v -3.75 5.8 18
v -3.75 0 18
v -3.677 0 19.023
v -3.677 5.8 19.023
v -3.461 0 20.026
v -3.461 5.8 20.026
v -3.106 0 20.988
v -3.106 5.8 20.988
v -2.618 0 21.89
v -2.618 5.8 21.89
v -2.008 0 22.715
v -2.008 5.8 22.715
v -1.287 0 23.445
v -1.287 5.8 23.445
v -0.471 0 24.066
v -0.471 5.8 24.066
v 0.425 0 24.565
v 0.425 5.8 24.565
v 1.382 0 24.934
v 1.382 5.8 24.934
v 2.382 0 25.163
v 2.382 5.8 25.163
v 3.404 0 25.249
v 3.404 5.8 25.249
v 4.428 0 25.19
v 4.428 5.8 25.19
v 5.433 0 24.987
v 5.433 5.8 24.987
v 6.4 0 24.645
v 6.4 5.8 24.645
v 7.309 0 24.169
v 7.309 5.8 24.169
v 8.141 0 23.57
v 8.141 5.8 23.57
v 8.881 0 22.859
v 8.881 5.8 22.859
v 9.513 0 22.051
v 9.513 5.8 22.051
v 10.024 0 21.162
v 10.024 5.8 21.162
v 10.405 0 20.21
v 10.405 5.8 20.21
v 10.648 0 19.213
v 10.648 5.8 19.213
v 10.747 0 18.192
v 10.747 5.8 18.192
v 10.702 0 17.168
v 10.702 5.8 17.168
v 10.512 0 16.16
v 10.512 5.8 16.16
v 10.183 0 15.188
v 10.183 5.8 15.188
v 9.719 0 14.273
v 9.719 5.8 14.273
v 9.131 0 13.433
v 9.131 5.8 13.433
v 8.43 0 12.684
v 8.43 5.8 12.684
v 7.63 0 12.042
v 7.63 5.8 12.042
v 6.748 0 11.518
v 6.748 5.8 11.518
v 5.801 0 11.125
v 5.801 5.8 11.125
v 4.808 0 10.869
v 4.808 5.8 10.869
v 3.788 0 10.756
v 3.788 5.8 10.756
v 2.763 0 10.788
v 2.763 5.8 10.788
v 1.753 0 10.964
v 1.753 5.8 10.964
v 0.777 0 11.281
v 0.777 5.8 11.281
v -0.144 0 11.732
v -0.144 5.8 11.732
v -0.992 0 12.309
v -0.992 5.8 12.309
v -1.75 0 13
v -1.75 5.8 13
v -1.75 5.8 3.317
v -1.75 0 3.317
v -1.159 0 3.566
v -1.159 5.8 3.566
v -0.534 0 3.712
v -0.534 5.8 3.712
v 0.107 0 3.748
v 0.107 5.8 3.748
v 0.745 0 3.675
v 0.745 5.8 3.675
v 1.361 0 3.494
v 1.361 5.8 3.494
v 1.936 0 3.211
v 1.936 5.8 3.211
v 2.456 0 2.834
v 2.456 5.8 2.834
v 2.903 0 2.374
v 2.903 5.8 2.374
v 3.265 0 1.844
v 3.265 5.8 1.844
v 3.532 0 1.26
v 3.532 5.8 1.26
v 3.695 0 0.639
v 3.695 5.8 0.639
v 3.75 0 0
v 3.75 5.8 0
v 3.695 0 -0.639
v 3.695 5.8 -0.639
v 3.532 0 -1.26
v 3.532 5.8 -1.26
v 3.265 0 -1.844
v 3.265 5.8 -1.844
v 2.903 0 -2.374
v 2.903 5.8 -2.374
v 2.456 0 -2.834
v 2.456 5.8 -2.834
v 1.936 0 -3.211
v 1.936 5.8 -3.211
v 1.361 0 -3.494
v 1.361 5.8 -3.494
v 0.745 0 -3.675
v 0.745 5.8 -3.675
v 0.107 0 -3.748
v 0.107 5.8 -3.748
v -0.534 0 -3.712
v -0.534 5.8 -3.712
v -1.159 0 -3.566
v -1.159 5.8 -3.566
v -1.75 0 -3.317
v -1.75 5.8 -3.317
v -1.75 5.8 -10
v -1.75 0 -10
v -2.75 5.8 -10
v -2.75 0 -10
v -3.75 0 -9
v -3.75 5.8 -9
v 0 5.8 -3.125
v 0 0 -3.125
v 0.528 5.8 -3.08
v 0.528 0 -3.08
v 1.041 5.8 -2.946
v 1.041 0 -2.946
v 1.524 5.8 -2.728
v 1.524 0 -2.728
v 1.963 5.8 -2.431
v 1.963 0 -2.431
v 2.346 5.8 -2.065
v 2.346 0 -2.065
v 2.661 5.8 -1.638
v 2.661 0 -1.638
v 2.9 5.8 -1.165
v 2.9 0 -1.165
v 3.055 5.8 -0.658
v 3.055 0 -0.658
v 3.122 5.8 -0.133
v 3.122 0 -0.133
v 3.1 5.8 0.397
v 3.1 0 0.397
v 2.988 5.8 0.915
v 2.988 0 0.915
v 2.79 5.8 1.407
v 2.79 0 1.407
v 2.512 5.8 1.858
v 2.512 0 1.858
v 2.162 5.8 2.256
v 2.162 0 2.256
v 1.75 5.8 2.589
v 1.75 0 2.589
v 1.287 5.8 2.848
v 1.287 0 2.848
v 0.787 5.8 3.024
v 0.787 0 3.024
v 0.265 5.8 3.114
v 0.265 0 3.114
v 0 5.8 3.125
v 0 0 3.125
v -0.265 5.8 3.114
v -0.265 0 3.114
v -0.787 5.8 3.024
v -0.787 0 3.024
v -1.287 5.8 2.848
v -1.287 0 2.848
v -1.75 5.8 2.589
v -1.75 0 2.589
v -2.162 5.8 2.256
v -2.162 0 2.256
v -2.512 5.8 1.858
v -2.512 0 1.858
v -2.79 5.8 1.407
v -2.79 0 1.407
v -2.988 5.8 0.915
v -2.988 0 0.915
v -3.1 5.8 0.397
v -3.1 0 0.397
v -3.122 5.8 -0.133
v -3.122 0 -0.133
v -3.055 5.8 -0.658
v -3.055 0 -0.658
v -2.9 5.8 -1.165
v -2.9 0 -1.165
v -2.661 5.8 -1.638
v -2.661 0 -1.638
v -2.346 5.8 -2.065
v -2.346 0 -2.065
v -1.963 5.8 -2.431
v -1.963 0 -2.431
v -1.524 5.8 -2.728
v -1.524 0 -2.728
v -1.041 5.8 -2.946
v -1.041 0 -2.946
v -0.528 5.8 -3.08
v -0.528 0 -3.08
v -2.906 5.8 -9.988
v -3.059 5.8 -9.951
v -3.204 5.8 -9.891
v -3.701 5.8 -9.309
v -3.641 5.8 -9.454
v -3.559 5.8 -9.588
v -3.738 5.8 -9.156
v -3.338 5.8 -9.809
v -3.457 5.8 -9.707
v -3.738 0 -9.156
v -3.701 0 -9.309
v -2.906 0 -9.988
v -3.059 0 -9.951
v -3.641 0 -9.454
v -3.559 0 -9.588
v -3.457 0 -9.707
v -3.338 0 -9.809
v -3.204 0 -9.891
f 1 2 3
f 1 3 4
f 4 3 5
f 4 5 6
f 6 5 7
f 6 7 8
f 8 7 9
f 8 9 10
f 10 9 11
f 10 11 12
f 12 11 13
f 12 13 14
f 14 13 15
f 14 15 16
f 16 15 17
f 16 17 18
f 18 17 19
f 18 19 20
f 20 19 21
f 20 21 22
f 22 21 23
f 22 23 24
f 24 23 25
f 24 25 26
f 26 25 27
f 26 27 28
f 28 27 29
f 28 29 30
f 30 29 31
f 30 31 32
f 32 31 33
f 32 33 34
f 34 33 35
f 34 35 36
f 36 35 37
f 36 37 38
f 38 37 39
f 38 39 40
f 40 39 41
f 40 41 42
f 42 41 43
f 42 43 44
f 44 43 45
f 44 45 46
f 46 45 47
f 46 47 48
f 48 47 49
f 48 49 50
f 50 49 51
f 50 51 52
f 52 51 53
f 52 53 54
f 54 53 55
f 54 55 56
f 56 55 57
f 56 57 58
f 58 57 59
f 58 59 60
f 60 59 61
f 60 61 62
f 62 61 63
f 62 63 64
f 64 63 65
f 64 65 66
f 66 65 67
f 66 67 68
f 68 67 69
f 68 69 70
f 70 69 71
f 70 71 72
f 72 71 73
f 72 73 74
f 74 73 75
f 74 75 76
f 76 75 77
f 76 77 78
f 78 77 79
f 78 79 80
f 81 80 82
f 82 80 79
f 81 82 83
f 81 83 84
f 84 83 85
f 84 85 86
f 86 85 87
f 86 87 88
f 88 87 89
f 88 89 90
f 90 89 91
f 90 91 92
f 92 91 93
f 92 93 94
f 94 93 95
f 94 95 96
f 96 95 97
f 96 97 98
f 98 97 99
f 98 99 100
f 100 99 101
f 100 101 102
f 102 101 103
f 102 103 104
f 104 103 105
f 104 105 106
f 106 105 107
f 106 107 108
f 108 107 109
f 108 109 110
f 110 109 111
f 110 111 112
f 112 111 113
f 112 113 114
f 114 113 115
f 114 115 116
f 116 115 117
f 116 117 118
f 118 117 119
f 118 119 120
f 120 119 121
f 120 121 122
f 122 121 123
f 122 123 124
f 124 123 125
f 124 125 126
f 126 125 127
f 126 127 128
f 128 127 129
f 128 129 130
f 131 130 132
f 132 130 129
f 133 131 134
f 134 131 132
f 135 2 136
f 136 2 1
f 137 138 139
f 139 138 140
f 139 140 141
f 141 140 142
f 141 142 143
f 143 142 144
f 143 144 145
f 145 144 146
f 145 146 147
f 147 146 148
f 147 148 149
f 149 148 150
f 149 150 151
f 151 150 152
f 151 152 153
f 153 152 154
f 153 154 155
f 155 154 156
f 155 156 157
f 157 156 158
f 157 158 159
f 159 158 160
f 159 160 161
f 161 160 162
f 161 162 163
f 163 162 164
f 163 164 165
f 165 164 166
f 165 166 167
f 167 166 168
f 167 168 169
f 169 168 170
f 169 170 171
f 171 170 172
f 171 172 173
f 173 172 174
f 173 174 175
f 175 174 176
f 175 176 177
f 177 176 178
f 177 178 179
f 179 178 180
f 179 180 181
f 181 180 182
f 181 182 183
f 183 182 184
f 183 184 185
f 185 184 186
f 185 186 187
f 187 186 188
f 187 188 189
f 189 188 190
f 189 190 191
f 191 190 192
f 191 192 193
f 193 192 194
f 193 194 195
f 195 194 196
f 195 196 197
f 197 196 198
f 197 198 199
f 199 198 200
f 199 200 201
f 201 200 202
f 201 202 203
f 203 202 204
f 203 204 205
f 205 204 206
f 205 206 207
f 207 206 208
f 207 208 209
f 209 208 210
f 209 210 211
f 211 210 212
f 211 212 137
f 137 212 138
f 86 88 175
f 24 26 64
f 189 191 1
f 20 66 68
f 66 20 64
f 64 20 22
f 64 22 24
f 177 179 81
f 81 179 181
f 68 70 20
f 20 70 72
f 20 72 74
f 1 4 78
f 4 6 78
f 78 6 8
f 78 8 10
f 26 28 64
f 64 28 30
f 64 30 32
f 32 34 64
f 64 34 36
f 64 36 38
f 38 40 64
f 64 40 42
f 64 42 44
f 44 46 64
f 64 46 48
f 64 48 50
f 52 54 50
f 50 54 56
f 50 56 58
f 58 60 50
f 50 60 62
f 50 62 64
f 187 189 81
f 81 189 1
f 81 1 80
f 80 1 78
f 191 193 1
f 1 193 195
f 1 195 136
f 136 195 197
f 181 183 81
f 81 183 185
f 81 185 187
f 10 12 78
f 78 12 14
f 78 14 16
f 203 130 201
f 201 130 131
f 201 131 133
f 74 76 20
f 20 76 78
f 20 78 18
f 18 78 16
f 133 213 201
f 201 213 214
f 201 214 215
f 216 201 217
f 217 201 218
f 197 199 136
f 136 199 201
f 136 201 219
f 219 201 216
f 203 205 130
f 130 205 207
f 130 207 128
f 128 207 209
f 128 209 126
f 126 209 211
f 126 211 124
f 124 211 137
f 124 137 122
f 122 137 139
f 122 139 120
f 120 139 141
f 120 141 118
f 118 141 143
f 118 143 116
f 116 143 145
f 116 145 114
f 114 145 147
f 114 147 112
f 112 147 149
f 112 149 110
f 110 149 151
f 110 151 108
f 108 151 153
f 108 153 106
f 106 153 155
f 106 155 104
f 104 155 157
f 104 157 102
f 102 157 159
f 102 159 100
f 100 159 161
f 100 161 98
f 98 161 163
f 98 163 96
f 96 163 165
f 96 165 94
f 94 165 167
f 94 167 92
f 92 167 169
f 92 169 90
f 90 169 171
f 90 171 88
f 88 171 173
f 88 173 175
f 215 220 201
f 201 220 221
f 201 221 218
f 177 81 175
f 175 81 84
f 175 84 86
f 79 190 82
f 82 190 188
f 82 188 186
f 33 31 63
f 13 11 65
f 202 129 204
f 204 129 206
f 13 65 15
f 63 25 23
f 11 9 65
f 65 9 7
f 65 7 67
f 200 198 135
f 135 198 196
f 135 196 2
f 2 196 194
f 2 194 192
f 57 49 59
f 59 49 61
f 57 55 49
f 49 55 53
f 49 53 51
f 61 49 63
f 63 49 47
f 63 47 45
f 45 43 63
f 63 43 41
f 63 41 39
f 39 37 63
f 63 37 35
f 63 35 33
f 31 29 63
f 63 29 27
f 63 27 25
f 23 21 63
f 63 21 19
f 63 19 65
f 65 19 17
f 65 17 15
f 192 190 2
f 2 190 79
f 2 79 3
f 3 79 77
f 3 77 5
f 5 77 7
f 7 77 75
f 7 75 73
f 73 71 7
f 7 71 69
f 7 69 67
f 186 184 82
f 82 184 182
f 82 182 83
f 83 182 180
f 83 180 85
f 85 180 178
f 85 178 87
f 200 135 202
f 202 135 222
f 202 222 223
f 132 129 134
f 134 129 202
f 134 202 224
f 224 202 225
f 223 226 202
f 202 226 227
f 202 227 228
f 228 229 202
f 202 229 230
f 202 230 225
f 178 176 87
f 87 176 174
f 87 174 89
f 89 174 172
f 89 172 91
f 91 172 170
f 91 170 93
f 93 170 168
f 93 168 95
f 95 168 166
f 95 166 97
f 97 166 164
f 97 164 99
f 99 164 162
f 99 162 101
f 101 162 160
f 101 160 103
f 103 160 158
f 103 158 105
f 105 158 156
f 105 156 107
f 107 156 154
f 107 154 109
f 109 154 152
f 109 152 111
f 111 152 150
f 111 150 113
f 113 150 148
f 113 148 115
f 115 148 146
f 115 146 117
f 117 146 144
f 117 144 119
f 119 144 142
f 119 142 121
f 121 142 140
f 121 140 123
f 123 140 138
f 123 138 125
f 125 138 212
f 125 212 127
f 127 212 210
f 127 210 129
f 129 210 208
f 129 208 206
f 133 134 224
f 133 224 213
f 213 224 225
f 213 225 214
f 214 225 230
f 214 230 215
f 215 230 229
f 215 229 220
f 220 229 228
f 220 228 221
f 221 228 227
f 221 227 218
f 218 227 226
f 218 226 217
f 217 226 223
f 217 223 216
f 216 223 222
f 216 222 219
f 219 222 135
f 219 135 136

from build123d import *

# Parameters (mm, degrees)
SKETCH1_R           = 3.125
BOSS_EXTRUDE1_DEPTH = 5.8
FILLET1_R           = 1


with BuildPart() as part:
    # Sketch1 → Boss-Extrude1 (new body)
    with BuildSketch(Plane(origin=(0, 0, 0), x_dir=(1, 0, 0), z_dir=(0, 1, 0))):
        with BuildLine():
            Line((-1.75, 10), (-3.75, 10))
            Line((-3.75, 10), (-3.75, -18))
            ThreePointArc((-3.75, -18), (9.742495495, -21.686970301), (0, -11.65078745))
            ThreePointArc((0, -11.65078745), (-0.926705166, -12.258329392), (-1.75, -13))
            Line((-1.75, -13), (-1.75, -3.31662479))
            ThreePointArc((-1.75, -3.31662479), (-0.901431372, -3.640044159), (0, -3.75))
            ThreePointArc((0, -3.75), (3.640044159, 0.901431372), (-1.75, 3.31662479))
            Line((-1.75, 3.31662479), (-1.75, 10))
        make_face()
        with Locations(Location((0, 0, 0), (0, 0, 270))):
            Circle(SKETCH1_R, mode=Mode.SUBTRACT)
    extrude(amount=BOSS_EXTRUDE1_DEPTH)

    # Fillet1
    fillet1_edges = [part.edges().sort_by_distance(p)[0] for p in [
        (-3.75, 2.9, -10),
    ]]
    fillet(fillet1_edges, radius=FILLET1_R)


solid = part.part
